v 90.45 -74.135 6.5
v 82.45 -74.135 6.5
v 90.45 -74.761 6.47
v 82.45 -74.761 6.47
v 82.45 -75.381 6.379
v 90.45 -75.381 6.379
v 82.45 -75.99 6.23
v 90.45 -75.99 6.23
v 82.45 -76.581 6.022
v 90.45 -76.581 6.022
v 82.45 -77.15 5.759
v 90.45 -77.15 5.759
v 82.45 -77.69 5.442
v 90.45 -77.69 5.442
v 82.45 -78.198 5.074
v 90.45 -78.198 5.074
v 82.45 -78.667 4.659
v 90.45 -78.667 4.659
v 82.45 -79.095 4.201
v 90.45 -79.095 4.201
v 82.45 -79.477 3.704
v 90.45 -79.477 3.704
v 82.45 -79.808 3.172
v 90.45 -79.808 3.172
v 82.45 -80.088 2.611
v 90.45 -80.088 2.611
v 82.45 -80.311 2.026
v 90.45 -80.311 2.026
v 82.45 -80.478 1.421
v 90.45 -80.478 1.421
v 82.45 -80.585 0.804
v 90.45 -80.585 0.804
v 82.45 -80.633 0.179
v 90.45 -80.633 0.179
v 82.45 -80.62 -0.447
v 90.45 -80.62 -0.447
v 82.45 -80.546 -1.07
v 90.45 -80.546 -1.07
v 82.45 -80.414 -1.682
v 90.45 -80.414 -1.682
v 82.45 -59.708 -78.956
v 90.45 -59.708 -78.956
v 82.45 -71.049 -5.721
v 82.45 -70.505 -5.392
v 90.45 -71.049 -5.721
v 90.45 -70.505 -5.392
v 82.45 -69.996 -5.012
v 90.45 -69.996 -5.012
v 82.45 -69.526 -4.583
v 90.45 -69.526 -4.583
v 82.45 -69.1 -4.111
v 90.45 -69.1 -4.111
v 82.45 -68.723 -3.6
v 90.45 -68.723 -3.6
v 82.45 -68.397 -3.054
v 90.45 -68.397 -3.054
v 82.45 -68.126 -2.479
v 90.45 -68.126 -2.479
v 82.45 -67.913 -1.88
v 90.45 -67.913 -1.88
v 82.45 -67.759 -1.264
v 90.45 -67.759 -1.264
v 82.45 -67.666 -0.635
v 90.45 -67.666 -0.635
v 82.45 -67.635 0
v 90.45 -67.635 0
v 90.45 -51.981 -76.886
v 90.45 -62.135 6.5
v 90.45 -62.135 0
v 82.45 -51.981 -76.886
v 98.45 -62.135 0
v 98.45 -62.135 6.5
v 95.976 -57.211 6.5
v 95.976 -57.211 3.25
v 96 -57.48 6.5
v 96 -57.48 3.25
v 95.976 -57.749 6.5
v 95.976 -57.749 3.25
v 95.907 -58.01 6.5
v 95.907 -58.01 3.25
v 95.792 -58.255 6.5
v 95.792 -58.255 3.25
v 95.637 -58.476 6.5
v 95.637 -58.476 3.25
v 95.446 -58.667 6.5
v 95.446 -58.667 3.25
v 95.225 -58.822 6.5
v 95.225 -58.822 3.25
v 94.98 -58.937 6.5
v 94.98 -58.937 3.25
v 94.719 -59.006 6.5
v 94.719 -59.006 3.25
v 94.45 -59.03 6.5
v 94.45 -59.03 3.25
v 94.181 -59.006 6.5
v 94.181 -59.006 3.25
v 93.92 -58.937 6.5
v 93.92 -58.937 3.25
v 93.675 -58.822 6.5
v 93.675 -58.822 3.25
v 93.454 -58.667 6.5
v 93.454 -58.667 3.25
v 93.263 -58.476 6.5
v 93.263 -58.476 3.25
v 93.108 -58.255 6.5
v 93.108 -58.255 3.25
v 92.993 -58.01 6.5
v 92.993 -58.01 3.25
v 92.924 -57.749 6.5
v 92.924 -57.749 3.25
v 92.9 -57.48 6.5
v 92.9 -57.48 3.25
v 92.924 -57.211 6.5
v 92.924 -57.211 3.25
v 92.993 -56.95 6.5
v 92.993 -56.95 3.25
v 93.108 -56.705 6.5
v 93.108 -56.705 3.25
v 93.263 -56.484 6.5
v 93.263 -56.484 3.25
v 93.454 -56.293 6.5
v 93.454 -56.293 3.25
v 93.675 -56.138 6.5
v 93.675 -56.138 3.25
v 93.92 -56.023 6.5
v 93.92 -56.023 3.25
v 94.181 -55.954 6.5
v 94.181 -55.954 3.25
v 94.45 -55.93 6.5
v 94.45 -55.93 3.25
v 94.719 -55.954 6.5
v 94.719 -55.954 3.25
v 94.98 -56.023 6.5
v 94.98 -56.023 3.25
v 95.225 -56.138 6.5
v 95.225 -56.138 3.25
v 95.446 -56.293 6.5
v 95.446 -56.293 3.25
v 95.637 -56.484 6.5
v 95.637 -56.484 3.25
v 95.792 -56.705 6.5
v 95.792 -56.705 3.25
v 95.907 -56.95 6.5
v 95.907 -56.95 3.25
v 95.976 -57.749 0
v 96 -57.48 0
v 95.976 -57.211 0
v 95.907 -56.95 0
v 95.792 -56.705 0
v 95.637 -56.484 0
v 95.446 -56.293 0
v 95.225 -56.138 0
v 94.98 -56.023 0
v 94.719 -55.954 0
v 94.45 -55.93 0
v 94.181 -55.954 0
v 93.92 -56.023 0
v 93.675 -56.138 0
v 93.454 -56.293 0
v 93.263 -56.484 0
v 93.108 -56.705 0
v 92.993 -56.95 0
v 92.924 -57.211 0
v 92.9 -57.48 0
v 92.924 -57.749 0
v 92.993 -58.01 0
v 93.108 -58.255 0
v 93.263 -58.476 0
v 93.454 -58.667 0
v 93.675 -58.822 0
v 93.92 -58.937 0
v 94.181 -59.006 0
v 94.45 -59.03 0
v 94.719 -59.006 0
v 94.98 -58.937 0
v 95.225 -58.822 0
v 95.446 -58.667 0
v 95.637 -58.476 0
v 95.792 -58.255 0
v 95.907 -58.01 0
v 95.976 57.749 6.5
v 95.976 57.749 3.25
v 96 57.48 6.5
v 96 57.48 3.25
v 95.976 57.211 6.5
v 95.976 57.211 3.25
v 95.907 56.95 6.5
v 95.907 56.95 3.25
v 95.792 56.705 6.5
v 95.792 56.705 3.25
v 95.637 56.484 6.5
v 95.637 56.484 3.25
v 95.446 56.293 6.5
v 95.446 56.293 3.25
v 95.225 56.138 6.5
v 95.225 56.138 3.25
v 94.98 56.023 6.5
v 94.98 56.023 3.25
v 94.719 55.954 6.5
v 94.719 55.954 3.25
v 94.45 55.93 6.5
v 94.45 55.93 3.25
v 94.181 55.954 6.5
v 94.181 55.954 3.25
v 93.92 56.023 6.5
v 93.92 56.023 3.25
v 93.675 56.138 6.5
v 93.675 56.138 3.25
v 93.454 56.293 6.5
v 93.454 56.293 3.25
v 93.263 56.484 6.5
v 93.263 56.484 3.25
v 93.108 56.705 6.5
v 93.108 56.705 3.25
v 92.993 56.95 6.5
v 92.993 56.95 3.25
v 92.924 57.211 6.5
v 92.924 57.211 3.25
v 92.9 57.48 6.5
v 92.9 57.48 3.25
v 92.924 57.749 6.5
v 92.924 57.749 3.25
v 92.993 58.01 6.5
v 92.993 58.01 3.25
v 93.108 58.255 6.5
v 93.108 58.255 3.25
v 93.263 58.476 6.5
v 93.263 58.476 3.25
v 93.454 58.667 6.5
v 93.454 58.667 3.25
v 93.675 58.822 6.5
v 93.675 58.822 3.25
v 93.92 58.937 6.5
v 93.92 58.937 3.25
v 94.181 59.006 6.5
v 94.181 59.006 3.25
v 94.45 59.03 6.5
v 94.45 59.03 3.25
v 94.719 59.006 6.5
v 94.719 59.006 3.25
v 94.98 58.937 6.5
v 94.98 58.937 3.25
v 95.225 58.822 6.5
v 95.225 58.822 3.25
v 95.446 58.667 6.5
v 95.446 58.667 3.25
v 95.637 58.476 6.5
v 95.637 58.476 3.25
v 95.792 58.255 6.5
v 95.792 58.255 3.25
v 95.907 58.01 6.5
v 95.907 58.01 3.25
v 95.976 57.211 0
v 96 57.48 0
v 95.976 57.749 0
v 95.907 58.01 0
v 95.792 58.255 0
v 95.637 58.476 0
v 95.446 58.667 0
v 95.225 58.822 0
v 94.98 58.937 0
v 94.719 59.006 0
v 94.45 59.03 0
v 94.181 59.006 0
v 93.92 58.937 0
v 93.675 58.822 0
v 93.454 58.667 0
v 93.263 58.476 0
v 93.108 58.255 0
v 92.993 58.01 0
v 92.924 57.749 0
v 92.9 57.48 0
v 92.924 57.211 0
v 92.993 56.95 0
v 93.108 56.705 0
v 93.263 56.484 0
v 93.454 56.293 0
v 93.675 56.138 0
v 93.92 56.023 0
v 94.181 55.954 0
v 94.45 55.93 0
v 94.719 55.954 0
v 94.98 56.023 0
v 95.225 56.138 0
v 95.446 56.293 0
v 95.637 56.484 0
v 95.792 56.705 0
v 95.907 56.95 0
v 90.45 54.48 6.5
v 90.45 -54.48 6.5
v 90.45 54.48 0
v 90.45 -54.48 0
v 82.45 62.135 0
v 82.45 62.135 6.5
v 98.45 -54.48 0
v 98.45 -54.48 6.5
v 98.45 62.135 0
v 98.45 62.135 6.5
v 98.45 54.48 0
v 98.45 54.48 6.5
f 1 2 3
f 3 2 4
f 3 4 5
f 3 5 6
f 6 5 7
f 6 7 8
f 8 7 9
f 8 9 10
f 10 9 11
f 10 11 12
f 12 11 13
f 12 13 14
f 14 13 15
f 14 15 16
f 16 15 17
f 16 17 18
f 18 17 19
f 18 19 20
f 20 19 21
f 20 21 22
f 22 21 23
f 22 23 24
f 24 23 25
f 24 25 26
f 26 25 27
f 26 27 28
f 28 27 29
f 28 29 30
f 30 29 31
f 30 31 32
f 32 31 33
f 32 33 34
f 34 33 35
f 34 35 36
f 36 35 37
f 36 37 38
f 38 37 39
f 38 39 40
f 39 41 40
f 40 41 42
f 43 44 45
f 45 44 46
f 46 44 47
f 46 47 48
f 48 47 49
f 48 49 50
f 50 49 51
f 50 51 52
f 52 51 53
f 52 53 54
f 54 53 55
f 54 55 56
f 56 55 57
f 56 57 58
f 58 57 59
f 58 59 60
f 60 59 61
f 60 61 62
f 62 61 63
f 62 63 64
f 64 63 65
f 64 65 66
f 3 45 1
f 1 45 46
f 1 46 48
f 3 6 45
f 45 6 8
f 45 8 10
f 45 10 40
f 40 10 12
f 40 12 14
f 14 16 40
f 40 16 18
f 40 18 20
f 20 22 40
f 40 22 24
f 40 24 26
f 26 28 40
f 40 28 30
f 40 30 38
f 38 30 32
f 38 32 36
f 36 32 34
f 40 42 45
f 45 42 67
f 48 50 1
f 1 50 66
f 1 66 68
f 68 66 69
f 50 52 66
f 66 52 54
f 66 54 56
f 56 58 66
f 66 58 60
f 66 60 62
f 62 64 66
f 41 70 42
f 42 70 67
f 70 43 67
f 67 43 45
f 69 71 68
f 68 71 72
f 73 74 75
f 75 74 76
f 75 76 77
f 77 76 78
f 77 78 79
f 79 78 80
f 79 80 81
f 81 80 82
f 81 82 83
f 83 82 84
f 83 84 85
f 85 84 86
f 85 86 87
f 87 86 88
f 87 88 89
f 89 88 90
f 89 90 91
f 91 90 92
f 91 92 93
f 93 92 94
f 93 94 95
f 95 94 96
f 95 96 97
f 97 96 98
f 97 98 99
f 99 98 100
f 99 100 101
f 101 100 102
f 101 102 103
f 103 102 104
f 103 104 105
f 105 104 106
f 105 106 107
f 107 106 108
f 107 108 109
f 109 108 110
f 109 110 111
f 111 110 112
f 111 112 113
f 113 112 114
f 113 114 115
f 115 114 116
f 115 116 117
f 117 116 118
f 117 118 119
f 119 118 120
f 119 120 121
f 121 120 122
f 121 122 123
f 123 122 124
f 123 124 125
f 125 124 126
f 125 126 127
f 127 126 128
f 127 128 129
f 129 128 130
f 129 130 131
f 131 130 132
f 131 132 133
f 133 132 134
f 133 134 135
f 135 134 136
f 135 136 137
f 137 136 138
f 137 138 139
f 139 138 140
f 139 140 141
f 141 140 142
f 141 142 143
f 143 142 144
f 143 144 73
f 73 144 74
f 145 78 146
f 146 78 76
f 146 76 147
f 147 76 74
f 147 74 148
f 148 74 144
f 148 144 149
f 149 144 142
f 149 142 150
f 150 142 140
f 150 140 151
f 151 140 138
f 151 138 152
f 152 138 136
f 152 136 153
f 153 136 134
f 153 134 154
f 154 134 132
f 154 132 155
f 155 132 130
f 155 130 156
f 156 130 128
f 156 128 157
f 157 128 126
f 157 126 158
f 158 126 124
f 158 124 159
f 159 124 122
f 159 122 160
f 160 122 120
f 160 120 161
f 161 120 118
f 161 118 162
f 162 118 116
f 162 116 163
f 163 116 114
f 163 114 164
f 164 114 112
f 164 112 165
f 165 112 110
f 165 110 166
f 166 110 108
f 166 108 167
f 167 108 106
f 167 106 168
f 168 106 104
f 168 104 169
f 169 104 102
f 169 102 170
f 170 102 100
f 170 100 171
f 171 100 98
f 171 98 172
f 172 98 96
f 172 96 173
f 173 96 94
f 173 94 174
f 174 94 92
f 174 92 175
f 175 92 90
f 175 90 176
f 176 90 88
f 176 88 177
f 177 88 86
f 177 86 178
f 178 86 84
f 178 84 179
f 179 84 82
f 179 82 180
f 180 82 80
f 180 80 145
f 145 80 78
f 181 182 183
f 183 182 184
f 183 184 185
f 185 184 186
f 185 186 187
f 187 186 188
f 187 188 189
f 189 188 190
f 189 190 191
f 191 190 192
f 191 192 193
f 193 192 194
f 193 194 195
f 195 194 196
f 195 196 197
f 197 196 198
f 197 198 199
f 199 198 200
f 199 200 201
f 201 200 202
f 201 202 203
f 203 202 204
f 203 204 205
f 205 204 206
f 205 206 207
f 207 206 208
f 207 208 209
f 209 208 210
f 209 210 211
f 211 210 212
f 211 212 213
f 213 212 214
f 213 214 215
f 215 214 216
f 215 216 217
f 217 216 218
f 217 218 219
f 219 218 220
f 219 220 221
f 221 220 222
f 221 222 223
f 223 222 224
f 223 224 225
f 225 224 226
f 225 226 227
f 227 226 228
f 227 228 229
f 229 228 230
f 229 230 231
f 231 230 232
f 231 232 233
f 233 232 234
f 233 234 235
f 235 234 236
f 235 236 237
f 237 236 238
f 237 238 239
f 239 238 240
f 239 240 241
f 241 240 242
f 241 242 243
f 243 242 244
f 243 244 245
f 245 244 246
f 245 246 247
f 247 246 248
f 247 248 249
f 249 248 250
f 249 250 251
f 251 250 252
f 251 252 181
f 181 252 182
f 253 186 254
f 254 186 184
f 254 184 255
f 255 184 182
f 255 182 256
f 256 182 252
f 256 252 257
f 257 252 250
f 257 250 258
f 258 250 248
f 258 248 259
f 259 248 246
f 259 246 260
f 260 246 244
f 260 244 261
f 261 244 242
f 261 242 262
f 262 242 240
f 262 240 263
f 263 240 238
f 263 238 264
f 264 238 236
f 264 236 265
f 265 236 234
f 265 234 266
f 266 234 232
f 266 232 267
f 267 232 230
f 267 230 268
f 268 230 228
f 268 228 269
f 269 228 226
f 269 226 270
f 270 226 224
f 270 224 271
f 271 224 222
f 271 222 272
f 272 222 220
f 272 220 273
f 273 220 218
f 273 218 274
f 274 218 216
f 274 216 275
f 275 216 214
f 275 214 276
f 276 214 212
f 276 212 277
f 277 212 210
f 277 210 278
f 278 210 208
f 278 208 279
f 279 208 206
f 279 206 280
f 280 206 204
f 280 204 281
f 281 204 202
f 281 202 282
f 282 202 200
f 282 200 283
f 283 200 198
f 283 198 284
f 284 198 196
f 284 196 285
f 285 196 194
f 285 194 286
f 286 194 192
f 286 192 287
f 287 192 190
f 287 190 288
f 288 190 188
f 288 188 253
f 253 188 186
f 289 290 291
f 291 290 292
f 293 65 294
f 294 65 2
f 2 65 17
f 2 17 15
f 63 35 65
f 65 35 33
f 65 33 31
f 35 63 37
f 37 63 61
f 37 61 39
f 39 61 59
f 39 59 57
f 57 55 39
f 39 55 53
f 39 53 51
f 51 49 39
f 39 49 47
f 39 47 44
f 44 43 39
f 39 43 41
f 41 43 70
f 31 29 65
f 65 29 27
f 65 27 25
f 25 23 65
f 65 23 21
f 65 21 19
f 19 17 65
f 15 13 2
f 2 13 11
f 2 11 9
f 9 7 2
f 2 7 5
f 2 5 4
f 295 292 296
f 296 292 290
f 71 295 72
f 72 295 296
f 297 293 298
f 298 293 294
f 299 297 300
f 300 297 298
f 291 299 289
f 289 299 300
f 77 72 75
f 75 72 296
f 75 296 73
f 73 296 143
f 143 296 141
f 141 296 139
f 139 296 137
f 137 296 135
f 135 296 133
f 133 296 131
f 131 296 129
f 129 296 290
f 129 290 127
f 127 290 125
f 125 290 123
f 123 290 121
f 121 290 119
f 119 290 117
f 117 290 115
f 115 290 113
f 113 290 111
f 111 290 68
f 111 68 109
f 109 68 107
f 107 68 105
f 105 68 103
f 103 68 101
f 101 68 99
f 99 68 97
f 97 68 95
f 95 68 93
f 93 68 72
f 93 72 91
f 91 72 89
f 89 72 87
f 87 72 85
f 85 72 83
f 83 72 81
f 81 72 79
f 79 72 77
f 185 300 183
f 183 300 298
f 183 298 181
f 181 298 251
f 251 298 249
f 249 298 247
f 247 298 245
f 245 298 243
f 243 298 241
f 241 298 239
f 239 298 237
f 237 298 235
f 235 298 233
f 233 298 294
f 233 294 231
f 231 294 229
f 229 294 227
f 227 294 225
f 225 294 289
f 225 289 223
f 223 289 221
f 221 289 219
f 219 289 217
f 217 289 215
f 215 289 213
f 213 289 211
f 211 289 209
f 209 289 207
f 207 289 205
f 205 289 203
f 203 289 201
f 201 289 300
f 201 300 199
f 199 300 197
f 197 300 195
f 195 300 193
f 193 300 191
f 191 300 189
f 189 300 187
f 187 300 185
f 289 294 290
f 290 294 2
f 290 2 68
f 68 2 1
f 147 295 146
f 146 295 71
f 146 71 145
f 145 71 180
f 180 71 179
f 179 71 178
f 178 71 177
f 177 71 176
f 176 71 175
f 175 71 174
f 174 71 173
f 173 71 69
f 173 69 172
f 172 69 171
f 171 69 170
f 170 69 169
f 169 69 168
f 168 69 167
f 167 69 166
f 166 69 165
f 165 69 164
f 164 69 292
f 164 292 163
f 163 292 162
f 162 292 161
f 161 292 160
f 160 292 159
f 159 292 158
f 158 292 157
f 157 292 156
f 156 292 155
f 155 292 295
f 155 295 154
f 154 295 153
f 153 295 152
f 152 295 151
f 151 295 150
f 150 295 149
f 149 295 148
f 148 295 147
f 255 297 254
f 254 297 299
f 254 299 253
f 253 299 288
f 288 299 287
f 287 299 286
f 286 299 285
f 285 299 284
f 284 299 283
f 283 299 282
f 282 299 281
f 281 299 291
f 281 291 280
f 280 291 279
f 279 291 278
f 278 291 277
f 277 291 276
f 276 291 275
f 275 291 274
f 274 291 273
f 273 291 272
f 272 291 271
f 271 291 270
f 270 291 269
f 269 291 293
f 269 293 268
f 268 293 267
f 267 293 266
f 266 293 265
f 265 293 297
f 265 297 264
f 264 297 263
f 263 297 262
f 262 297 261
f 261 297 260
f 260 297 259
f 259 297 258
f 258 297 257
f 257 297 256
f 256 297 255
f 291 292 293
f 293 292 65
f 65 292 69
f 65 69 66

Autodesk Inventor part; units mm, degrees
ref_plane "YZ Plane" through (0, 0, 0) normal (1, 0, 0) x (0, 1, 0)
ref_plane "XZ Plane" through (0, 0, 0) normal (0, 1, 0) x (-1, 0, 0)
ref_plane "XY Plane" through (0, 0, 0) normal (0, 0, 1) x (1, 0, 0)
sketch "Sketch1" plane through (0, 0, 0) normal (0, 0, 1) x (1, 0, 0)
  line L0 (74.45, 62.135) -> (82.45, 62.135) construction
  line L1 (82.45, 62.135) -> (82.45, -62.135)
  line L2 (82.45, -62.135) -> (74.45, -62.135) construction
  circle A0 centre (78.45, 57.48) radius 1.55 construction
  circle A1 centre (78.45, -57.48) radius 1.55
  line L3 (78.45, 57.48) -> (78.45, -57.48) construction
  line L4 (74.45, 0) -> (82.45, 0) construction
  line L5 (74.45, 57.48) -> (82.45, 57.48) construction
  line L6 (74.45, 54.48) -> (82.45, 54.48) construction
  line L7 (74.45, -54.48) -> (82.45, -54.48) construction
  line L8 (82.45, 62.135) -> (90.45, 62.135)
  line L9 (90.45, 62.135) -> (90.45, -62.135)
  line L10 (90.45, -62.135) -> (82.45, -62.135)
  line L11 (82.45, -62.135) -> (82.45, 62.135)
  line L12 (74.45, -62.135) -> (74.45, -54.48) construction
  line L13 (74.45, 54.48) -> (74.45, 62.135) construction
  line L14 (74.45, 54.48) -> (74.45, -54.48) construction
  line L15 (0, 79.555) -> (0, -87.364) construction
  line L16 (74.45, -54.48) -> (82.45, -54.48) construction
  line L17 (82.45, -54.48) -> (82.45, -62.135)
  line L18 (82.45, -62.135) -> (74.45, -62.135) construction
  line L19 (74.45, -62.135) -> (74.45, -54.48) construction
  line L20 (86.45, 62.135) -> (86.45, -62.135) construction
  line L21 (98.45, 62.135) -> (90.45, 62.135)
  line L22 (90.45, 62.135) -> (90.45, -62.135)
  line L23 (90.45, -62.135) -> (98.45, -62.135)
  circle A2 centre (94.45, 57.48) radius 1.55
  circle A3 centre (94.45, -57.48) radius 1.55
  line L24 (98.45, 54.48) -> (90.45, 54.48)
  line L25 (98.45, -54.48) -> (90.45, -54.48)
  line L26 (98.45, 54.48) -> (98.45, 62.135)
  line L27 (98.45, -62.135) -> (98.45, -54.48)
  line L28 (90.45, -54.48) -> (90.45, -62.135)
  line L29 (90.45, -54.48) -> (98.45, -54.48)
  line L30 (98.45, -54.48) -> (98.45, -62.135)
  line L31 (98.45, -62.135) -> (90.45, -62.135)
  line L32 (90.45, -62.135) -> (90.45, -54.48)
  point P0 (0, 0)
  point P1 (78.45, 0)
  point P2 (78.45, 0)
  point P3 (78.45, 62.135)
  point P4 (78.45, -62.135)
  dimension "d0" = 124.27
  dimension "d1" = 8
  dimension "d2" = 3.1
  dimension "d3" = 3.1
  dimension "d4" = 114.96
  dimension "d5" = 3
  dimension "d6" = 78.45
  dimension "d7" = 8
extrude "Extrusion3" add sketch "Sketch1" along normal blind 6.5 contours L8 L9 L10 L1 | L21 L26 L24 L9 | L9 L25 L27 L23
sketch "Sketch4" plane through (90.45, -62.135, 0) normal (1, 0, 0) x (0, 0, -1)
  line L0 (-6.5, 7.655) -> (-6.5, 116.615) projected
  line L1 (-6.5, 0) -> (0, 0)
  line L2 (0, 0) -> (0, -12)
  line L3 (0, -12) -> (-6.5, -12)
  line L4 (-6.5, -12) -> (-6.5, 0)
  circle A0 centre (0, -12) radius 6.5
  line L5 (1.6823, -18.2785) -> (78.9564, 2.427)
  line L6 (78.9564, 2.427) -> (76.8858, 10.1544)
  line L7 (76.8858, 10.1544) -> (5.7208, -8.9142)
  point P0 (0, 62.135)
  point P1 (-7, 124.27)
  dimension "d19" = 12
  dimension "d20" = 75
  dimension "d21" = 8
  dimension "d22" = 80
extrude "Extrusion4" add sketch "Sketch4" against normal up to surface (8 mm away)
properties part number "LCD-holder-left"
